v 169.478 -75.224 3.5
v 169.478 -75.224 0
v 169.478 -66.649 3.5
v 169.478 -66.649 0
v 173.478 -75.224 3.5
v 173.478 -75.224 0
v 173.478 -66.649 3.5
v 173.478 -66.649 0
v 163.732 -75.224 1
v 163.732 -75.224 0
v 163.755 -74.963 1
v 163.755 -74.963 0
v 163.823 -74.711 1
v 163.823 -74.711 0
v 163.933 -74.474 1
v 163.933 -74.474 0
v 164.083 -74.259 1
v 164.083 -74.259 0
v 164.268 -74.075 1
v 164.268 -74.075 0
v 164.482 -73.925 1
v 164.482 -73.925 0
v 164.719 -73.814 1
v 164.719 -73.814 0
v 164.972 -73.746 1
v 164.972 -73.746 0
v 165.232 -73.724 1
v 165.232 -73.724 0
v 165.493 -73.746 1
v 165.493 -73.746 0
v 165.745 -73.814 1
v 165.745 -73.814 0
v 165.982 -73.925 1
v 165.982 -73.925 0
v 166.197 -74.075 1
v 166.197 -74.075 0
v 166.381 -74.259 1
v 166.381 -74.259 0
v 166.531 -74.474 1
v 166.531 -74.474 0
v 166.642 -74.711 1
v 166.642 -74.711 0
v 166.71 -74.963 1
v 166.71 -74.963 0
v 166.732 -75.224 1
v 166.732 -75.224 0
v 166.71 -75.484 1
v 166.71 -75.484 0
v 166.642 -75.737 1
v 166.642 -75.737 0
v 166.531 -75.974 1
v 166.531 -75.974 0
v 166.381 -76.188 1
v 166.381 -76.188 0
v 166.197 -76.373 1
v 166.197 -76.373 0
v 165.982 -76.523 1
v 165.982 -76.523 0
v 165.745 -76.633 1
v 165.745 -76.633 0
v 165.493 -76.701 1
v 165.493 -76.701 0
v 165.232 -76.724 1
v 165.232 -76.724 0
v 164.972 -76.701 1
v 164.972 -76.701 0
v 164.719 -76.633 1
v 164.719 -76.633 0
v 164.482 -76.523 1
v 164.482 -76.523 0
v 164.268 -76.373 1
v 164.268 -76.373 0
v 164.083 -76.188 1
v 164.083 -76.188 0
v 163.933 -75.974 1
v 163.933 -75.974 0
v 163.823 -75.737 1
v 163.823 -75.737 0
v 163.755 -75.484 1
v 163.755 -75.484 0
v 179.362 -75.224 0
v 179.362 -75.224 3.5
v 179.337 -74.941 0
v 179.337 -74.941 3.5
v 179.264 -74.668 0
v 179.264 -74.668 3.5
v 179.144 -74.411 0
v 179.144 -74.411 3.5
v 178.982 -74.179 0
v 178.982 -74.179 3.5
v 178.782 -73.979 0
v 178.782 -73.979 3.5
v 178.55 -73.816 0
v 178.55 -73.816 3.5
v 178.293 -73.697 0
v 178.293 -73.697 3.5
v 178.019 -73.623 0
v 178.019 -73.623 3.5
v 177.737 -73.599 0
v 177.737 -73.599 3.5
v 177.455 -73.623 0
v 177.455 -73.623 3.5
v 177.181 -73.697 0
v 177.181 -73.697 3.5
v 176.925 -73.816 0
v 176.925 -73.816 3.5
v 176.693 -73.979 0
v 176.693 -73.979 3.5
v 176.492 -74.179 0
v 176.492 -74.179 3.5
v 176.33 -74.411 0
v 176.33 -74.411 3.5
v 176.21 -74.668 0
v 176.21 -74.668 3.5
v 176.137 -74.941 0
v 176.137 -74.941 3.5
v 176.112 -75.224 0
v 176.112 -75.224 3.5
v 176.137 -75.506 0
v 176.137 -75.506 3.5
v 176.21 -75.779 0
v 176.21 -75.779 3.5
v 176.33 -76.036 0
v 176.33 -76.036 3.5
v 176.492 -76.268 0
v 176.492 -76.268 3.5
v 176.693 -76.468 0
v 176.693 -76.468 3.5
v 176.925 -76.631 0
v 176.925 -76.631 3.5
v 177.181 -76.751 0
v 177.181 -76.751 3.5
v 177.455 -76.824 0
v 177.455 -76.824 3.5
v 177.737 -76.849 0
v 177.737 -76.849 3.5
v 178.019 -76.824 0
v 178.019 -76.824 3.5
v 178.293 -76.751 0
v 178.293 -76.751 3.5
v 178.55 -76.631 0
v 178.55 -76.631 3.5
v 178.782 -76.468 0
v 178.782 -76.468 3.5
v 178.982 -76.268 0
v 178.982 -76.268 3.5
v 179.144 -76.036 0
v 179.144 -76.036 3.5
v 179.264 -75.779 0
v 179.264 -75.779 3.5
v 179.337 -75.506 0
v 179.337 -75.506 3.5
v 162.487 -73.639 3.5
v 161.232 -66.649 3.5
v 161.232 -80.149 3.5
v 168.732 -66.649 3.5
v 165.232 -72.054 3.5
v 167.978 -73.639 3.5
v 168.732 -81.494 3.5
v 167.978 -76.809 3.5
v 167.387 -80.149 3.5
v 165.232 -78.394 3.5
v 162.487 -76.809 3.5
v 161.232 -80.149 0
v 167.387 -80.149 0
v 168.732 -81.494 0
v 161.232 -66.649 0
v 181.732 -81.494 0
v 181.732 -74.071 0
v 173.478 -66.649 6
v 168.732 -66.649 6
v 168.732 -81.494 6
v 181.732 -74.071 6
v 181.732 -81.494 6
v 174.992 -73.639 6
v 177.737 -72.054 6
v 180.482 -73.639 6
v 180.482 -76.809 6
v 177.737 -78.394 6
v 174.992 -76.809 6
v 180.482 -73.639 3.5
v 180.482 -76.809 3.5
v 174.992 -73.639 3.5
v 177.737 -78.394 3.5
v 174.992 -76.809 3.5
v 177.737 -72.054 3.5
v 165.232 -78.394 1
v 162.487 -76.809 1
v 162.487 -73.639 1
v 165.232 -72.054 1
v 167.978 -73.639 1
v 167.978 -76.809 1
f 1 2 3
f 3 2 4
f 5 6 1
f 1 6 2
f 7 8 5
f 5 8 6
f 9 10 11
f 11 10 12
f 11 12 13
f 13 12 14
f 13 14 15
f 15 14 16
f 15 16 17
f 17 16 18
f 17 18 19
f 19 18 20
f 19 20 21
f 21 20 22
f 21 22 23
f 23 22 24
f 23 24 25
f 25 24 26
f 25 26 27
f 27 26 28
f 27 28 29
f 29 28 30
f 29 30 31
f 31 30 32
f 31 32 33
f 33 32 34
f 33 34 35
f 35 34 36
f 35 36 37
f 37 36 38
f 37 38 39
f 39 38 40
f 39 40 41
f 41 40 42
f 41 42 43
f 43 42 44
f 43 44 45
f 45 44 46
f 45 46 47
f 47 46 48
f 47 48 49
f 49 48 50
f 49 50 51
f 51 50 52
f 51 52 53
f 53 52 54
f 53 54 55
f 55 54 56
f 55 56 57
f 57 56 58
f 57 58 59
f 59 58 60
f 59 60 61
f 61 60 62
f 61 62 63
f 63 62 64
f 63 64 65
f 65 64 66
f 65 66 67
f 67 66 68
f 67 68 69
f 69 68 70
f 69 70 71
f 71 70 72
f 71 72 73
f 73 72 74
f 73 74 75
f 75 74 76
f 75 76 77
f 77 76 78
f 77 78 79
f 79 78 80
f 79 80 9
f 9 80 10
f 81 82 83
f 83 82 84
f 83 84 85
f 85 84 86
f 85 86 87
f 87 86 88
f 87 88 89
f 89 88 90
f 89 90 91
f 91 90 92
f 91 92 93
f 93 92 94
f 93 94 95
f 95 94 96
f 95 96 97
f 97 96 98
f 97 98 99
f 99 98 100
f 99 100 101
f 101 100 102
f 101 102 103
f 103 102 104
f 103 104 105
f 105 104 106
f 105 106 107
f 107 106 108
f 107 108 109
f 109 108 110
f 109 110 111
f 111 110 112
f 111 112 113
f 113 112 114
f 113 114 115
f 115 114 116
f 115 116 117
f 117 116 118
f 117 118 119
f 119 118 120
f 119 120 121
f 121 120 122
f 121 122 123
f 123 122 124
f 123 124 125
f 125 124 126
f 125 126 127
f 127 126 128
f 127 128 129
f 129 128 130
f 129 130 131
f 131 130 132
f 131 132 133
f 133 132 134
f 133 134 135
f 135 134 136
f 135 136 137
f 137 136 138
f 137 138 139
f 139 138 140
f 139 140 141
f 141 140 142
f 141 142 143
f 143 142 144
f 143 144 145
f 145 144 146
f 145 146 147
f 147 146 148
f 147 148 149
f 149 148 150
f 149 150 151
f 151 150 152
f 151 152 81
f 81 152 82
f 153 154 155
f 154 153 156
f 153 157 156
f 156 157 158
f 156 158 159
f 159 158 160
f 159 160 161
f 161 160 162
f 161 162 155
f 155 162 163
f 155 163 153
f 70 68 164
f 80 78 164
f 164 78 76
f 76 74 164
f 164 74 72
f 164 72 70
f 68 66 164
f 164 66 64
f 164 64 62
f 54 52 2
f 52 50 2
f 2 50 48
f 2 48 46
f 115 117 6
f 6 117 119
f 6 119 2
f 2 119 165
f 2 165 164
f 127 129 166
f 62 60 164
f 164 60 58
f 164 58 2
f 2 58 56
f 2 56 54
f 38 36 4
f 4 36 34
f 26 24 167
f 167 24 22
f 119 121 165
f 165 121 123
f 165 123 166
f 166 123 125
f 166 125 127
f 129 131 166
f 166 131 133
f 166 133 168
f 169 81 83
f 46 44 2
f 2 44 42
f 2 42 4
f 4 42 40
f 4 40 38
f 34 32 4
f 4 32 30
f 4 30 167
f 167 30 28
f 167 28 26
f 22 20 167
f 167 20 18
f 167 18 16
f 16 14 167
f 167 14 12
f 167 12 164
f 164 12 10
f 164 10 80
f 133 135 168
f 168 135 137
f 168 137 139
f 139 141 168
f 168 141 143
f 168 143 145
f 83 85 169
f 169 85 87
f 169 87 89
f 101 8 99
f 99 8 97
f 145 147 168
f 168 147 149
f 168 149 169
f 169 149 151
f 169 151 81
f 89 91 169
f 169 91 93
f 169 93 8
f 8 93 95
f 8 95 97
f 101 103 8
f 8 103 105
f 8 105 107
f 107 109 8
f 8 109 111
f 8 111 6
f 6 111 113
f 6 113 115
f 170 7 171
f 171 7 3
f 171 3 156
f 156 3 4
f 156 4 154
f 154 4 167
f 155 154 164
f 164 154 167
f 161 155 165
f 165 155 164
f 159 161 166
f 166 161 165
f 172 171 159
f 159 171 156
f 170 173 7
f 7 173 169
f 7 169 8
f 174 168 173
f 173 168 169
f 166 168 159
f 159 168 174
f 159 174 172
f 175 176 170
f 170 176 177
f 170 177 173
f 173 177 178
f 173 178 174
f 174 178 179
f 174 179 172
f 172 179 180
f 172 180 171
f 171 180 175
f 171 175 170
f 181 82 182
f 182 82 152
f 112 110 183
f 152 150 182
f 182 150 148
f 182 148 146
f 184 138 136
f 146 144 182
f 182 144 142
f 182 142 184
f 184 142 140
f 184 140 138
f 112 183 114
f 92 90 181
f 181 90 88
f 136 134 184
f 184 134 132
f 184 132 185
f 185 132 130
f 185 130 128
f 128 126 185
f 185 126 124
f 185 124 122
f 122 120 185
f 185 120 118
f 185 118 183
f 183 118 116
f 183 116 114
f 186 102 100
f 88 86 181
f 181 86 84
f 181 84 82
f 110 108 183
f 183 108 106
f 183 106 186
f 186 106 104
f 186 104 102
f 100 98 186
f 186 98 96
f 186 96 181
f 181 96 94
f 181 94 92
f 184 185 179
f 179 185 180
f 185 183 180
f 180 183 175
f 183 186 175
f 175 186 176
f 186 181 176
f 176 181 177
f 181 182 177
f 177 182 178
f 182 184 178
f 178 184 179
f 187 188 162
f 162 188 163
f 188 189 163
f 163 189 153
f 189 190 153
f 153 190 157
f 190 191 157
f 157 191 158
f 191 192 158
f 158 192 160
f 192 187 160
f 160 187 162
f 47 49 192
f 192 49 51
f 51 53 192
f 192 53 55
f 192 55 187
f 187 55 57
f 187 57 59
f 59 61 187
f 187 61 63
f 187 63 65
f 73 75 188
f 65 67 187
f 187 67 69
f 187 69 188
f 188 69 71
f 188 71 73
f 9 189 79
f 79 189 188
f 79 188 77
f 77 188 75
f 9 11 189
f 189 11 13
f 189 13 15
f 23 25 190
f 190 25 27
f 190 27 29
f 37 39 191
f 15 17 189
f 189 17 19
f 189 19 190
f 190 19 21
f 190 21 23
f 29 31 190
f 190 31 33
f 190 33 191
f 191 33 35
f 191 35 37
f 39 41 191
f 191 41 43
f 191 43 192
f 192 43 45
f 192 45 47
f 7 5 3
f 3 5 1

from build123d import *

# Parameters (mm, degrees)
CROQUIS1_R                   = 1.5
SALIENTE_EXTRUIR1_DEPTH      = 3.5
SALIENTE_EXTRUIR2_DEPTH      = 2.5
SALIENTE_EXTRUIR2_DEPTH_BACK = 3.5
CROQUIS3_R                   = 1.625
CORTAR_EXTRUIR1_DEPTH        = 2.5
CORTAR_EXTRUIR2_DEPTH        = 2.5
CROQUIS6_W                   = 4
CROQUIS6_H                   = 8.575
SALIENTE_EXTRUIR4_DEPTH      = 2.5


with BuildPart() as part:
    # Croquis1 → Saliente-Extruir1 (new body)
    with BuildSketch(Plane.XY):
        Polygon((168.732371, -66.648646), (161.232371, -66.648646), (161.232371, -80.148646), (167.387371, -80.148646), (168.732371, -81.493646), (168.732371, -80.148646), align=None)
        with Locations((165.232371, -75.223646)):
            Circle(CROQUIS1_R, mode=Mode.SUBTRACT)
    extrude(amount=SALIENTE_EXTRUIR1_DEPTH)

    # Croquis3 → Saliente-Extruir2 (add, two sides: drawn at the far end of the back side and taken through both)
    with BuildSketch(Plane.XY.offset(3.5).offset(-SALIENTE_EXTRUIR2_DEPTH_BACK)):
        Polygon((168.732371, -81.493646), (181.732371, -81.493646), (181.732371, -74.071146), (173.47767153, -66.648646), (173.47767153, -75.223646), (169.47767153, -75.223646), (169.47767153, -66.648646), (168.732371, -66.648646), align=None)
        with Locations((177.73707047, -75.223646)):
            Circle(CROQUIS3_R, mode=Mode.SUBTRACT)
    extrude(amount=SALIENTE_EXTRUIR2_DEPTH + SALIENTE_EXTRUIR2_DEPTH_BACK)

    # Croquis4 → Cortar-Extruir1 (cut)
    with BuildSketch(Plane.XY.offset(6)):
        Polygon((177.73707047, -78.393646), (180.482371, -76.808646), (180.482371, -73.638646), (177.73707047, -72.053646), (174.99176994, -73.638646), (174.99176994, -76.808646), align=None)
    extrude(amount=-CORTAR_EXTRUIR1_DEPTH, mode=Mode.SUBTRACT)

    # Croquis5 → Cortar-Extruir2 (cut)
    with BuildSketch(Plane.XY.offset(3.5)):
        Polygon((165.232371, -78.393646), (167.97767153, -76.808646), (167.97767153, -73.638646), (165.232371, -72.053646), (162.48707047, -73.638646), (162.48707047, -76.808646), align=None)
    extrude(amount=-CORTAR_EXTRUIR2_DEPTH, mode=Mode.SUBTRACT)

    # Croquis6 → Saliente-Extruir4 (add)
    with BuildSketch(Plane.XY.offset(6)):
        with Locations((171.47767153, -70.936146)):
            Rectangle(CROQUIS6_W, CROQUIS6_H)
    extrude(amount=-SALIENTE_EXTRUIR4_DEPTH)


solid = part.part
